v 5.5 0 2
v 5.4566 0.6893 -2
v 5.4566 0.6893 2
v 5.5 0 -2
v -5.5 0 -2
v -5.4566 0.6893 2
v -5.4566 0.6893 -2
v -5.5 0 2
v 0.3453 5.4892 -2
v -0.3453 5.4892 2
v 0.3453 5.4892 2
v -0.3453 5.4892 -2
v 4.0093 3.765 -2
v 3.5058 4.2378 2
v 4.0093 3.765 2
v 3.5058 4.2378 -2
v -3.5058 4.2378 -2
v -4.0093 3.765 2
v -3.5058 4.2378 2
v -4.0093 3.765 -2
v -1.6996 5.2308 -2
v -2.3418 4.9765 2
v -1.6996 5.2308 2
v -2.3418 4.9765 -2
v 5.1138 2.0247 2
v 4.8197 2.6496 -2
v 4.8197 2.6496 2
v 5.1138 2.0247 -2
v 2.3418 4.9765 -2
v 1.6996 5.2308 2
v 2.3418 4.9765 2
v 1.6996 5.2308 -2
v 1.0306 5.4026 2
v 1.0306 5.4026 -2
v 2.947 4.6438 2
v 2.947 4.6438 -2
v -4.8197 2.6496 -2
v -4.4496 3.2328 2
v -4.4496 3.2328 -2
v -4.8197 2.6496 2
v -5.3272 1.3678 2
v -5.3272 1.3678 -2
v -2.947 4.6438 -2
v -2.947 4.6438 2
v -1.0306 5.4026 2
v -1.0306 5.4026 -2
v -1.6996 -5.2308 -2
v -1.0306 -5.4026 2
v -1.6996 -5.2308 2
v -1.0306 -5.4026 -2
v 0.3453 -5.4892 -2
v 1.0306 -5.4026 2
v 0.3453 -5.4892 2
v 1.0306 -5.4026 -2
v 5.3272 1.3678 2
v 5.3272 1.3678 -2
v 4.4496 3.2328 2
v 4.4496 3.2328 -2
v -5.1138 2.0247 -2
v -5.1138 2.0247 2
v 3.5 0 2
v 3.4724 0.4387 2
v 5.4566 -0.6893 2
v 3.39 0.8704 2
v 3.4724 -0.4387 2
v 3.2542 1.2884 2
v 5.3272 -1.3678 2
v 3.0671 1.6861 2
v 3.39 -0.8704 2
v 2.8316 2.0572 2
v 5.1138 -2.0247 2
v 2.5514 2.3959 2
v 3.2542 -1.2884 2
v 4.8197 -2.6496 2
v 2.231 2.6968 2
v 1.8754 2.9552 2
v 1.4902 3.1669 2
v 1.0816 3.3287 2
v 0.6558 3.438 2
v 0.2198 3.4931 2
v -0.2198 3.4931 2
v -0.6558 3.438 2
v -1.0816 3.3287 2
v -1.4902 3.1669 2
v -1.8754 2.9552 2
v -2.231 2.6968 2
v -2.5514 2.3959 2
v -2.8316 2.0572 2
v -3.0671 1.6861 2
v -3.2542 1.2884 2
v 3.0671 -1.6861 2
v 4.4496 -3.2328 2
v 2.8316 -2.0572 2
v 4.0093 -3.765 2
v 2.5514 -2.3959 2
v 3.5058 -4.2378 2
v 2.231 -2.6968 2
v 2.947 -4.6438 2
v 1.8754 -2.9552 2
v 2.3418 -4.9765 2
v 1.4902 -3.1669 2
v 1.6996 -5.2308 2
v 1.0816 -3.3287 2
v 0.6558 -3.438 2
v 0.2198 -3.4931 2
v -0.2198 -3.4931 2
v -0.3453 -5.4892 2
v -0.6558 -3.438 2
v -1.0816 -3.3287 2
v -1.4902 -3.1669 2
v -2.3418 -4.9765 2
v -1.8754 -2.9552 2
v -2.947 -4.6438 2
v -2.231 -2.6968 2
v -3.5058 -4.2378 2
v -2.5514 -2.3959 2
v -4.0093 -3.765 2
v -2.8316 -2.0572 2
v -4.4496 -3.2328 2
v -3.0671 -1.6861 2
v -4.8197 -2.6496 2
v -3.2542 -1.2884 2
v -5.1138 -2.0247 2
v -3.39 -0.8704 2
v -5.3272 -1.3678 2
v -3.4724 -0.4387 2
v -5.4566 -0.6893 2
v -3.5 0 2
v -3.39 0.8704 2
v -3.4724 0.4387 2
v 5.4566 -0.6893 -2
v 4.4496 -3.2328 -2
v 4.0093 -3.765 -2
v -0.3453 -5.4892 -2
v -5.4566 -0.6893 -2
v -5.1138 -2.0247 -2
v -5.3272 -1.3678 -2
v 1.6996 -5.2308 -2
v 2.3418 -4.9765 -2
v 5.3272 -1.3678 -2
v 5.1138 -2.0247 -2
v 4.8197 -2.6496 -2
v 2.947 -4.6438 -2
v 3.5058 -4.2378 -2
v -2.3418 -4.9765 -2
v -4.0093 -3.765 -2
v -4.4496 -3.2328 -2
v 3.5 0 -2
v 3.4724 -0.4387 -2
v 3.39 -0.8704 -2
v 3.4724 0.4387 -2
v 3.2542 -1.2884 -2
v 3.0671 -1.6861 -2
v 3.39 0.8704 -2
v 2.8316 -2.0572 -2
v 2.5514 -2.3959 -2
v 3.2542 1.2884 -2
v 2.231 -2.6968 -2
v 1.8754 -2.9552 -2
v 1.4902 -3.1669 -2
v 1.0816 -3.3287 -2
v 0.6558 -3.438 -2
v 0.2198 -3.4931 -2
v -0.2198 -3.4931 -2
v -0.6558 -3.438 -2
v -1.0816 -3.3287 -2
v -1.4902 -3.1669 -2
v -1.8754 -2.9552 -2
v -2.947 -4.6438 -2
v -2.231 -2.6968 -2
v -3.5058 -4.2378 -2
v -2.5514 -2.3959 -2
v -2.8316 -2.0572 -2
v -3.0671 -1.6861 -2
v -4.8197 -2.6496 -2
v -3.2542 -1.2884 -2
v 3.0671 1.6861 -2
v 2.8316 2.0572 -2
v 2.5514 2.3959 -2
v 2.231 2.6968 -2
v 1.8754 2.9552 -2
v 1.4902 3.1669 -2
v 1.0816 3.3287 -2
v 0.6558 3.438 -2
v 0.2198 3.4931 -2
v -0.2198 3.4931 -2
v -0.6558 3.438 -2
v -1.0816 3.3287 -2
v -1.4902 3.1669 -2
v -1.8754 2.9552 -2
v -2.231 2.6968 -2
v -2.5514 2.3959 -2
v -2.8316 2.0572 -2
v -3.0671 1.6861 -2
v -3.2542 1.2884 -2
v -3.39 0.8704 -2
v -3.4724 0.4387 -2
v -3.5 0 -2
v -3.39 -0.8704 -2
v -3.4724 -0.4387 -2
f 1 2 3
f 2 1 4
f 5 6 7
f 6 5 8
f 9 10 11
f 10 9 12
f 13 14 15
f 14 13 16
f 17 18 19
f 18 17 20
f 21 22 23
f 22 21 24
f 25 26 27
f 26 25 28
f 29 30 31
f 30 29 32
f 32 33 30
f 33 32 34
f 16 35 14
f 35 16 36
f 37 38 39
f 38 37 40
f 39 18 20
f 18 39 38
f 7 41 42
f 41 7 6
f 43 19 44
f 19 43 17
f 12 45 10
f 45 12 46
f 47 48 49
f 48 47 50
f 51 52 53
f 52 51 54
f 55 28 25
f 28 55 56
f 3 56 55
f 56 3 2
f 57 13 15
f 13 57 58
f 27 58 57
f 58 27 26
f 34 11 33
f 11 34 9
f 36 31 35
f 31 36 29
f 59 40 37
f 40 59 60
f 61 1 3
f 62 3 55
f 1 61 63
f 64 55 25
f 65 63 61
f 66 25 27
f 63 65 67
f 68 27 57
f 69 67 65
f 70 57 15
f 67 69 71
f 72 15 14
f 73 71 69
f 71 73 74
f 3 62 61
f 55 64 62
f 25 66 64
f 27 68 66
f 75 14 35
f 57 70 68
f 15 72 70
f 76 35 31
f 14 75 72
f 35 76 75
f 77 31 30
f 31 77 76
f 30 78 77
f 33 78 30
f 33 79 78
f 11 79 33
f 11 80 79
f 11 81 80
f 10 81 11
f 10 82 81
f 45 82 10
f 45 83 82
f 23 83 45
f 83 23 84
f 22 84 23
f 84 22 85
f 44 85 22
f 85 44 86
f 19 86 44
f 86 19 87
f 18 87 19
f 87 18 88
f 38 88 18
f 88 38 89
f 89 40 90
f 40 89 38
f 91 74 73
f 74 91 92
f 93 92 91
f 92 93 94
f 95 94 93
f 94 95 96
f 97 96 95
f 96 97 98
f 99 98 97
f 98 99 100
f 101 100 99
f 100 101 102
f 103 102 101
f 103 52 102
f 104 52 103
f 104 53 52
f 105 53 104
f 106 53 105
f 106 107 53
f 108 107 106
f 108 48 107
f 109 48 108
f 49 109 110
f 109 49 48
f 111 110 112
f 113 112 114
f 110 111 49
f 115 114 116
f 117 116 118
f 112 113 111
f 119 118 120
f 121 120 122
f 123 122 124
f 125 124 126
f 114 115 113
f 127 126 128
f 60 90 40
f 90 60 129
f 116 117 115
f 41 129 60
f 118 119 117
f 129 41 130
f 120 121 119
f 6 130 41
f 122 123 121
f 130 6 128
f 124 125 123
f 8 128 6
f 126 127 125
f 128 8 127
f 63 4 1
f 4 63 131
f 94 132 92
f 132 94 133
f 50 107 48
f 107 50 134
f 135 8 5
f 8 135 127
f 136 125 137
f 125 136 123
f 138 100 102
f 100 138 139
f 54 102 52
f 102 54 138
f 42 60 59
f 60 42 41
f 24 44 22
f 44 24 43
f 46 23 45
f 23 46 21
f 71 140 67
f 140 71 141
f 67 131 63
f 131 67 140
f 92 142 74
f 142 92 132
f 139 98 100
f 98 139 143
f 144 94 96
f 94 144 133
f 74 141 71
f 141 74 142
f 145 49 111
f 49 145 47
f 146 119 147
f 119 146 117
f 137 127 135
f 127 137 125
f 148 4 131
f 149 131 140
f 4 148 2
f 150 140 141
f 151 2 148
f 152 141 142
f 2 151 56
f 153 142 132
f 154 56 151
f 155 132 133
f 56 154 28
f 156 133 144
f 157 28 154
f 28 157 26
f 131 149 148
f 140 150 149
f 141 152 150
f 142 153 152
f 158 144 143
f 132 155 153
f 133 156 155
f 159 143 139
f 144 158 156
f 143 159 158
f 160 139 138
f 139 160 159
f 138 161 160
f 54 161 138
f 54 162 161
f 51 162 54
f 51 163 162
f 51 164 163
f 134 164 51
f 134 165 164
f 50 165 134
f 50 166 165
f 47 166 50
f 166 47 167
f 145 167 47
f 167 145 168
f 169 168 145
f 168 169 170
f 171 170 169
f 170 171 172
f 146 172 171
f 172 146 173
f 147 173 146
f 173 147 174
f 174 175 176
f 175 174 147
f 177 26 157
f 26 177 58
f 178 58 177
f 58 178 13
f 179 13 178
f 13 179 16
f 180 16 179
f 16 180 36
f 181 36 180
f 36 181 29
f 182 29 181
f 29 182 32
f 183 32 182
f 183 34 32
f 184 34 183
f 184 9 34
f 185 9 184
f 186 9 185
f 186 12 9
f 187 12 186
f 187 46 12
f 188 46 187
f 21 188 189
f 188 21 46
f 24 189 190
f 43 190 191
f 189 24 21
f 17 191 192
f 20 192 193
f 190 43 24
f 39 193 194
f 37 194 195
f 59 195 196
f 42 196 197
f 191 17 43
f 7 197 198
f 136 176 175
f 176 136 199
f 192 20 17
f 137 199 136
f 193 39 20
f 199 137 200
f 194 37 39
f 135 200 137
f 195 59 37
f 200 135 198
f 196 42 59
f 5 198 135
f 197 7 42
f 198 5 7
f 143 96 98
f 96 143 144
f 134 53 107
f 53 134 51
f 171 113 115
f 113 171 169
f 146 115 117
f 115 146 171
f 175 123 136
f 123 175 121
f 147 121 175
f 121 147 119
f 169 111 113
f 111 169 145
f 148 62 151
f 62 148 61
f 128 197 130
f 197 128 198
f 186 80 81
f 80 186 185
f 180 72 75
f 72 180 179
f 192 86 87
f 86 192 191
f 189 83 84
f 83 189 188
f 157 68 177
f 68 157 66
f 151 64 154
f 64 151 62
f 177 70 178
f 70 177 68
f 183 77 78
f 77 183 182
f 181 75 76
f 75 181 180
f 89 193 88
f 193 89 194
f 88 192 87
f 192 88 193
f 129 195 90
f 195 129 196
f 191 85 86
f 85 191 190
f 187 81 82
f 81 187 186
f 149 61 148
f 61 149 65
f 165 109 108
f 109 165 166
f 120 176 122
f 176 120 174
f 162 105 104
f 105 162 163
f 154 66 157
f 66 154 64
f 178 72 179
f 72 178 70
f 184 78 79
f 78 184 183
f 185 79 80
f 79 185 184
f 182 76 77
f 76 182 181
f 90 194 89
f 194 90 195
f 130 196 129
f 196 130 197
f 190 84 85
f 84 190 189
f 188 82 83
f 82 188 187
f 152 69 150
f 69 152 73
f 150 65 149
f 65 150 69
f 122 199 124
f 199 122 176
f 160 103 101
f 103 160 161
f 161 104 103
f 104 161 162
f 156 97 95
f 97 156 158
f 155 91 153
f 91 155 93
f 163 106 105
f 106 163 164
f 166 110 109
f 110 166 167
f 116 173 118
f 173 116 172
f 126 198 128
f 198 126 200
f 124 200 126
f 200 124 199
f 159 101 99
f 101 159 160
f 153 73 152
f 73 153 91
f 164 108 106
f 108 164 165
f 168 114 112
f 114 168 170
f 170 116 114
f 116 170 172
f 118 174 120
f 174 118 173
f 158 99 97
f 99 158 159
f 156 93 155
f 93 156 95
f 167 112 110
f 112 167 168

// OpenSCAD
$fn = 50;


difference() {
	union() {
		translate(v = [0, 0, -2.0000000000]) {
			cylinder(h = 4, r = 5.5000000000);
		}
	}
	union() {
		translate(v = [0, 0, -100.0000000000]) {
			cylinder(h = 200, r = 3.5000000000);
		}
	}
}
